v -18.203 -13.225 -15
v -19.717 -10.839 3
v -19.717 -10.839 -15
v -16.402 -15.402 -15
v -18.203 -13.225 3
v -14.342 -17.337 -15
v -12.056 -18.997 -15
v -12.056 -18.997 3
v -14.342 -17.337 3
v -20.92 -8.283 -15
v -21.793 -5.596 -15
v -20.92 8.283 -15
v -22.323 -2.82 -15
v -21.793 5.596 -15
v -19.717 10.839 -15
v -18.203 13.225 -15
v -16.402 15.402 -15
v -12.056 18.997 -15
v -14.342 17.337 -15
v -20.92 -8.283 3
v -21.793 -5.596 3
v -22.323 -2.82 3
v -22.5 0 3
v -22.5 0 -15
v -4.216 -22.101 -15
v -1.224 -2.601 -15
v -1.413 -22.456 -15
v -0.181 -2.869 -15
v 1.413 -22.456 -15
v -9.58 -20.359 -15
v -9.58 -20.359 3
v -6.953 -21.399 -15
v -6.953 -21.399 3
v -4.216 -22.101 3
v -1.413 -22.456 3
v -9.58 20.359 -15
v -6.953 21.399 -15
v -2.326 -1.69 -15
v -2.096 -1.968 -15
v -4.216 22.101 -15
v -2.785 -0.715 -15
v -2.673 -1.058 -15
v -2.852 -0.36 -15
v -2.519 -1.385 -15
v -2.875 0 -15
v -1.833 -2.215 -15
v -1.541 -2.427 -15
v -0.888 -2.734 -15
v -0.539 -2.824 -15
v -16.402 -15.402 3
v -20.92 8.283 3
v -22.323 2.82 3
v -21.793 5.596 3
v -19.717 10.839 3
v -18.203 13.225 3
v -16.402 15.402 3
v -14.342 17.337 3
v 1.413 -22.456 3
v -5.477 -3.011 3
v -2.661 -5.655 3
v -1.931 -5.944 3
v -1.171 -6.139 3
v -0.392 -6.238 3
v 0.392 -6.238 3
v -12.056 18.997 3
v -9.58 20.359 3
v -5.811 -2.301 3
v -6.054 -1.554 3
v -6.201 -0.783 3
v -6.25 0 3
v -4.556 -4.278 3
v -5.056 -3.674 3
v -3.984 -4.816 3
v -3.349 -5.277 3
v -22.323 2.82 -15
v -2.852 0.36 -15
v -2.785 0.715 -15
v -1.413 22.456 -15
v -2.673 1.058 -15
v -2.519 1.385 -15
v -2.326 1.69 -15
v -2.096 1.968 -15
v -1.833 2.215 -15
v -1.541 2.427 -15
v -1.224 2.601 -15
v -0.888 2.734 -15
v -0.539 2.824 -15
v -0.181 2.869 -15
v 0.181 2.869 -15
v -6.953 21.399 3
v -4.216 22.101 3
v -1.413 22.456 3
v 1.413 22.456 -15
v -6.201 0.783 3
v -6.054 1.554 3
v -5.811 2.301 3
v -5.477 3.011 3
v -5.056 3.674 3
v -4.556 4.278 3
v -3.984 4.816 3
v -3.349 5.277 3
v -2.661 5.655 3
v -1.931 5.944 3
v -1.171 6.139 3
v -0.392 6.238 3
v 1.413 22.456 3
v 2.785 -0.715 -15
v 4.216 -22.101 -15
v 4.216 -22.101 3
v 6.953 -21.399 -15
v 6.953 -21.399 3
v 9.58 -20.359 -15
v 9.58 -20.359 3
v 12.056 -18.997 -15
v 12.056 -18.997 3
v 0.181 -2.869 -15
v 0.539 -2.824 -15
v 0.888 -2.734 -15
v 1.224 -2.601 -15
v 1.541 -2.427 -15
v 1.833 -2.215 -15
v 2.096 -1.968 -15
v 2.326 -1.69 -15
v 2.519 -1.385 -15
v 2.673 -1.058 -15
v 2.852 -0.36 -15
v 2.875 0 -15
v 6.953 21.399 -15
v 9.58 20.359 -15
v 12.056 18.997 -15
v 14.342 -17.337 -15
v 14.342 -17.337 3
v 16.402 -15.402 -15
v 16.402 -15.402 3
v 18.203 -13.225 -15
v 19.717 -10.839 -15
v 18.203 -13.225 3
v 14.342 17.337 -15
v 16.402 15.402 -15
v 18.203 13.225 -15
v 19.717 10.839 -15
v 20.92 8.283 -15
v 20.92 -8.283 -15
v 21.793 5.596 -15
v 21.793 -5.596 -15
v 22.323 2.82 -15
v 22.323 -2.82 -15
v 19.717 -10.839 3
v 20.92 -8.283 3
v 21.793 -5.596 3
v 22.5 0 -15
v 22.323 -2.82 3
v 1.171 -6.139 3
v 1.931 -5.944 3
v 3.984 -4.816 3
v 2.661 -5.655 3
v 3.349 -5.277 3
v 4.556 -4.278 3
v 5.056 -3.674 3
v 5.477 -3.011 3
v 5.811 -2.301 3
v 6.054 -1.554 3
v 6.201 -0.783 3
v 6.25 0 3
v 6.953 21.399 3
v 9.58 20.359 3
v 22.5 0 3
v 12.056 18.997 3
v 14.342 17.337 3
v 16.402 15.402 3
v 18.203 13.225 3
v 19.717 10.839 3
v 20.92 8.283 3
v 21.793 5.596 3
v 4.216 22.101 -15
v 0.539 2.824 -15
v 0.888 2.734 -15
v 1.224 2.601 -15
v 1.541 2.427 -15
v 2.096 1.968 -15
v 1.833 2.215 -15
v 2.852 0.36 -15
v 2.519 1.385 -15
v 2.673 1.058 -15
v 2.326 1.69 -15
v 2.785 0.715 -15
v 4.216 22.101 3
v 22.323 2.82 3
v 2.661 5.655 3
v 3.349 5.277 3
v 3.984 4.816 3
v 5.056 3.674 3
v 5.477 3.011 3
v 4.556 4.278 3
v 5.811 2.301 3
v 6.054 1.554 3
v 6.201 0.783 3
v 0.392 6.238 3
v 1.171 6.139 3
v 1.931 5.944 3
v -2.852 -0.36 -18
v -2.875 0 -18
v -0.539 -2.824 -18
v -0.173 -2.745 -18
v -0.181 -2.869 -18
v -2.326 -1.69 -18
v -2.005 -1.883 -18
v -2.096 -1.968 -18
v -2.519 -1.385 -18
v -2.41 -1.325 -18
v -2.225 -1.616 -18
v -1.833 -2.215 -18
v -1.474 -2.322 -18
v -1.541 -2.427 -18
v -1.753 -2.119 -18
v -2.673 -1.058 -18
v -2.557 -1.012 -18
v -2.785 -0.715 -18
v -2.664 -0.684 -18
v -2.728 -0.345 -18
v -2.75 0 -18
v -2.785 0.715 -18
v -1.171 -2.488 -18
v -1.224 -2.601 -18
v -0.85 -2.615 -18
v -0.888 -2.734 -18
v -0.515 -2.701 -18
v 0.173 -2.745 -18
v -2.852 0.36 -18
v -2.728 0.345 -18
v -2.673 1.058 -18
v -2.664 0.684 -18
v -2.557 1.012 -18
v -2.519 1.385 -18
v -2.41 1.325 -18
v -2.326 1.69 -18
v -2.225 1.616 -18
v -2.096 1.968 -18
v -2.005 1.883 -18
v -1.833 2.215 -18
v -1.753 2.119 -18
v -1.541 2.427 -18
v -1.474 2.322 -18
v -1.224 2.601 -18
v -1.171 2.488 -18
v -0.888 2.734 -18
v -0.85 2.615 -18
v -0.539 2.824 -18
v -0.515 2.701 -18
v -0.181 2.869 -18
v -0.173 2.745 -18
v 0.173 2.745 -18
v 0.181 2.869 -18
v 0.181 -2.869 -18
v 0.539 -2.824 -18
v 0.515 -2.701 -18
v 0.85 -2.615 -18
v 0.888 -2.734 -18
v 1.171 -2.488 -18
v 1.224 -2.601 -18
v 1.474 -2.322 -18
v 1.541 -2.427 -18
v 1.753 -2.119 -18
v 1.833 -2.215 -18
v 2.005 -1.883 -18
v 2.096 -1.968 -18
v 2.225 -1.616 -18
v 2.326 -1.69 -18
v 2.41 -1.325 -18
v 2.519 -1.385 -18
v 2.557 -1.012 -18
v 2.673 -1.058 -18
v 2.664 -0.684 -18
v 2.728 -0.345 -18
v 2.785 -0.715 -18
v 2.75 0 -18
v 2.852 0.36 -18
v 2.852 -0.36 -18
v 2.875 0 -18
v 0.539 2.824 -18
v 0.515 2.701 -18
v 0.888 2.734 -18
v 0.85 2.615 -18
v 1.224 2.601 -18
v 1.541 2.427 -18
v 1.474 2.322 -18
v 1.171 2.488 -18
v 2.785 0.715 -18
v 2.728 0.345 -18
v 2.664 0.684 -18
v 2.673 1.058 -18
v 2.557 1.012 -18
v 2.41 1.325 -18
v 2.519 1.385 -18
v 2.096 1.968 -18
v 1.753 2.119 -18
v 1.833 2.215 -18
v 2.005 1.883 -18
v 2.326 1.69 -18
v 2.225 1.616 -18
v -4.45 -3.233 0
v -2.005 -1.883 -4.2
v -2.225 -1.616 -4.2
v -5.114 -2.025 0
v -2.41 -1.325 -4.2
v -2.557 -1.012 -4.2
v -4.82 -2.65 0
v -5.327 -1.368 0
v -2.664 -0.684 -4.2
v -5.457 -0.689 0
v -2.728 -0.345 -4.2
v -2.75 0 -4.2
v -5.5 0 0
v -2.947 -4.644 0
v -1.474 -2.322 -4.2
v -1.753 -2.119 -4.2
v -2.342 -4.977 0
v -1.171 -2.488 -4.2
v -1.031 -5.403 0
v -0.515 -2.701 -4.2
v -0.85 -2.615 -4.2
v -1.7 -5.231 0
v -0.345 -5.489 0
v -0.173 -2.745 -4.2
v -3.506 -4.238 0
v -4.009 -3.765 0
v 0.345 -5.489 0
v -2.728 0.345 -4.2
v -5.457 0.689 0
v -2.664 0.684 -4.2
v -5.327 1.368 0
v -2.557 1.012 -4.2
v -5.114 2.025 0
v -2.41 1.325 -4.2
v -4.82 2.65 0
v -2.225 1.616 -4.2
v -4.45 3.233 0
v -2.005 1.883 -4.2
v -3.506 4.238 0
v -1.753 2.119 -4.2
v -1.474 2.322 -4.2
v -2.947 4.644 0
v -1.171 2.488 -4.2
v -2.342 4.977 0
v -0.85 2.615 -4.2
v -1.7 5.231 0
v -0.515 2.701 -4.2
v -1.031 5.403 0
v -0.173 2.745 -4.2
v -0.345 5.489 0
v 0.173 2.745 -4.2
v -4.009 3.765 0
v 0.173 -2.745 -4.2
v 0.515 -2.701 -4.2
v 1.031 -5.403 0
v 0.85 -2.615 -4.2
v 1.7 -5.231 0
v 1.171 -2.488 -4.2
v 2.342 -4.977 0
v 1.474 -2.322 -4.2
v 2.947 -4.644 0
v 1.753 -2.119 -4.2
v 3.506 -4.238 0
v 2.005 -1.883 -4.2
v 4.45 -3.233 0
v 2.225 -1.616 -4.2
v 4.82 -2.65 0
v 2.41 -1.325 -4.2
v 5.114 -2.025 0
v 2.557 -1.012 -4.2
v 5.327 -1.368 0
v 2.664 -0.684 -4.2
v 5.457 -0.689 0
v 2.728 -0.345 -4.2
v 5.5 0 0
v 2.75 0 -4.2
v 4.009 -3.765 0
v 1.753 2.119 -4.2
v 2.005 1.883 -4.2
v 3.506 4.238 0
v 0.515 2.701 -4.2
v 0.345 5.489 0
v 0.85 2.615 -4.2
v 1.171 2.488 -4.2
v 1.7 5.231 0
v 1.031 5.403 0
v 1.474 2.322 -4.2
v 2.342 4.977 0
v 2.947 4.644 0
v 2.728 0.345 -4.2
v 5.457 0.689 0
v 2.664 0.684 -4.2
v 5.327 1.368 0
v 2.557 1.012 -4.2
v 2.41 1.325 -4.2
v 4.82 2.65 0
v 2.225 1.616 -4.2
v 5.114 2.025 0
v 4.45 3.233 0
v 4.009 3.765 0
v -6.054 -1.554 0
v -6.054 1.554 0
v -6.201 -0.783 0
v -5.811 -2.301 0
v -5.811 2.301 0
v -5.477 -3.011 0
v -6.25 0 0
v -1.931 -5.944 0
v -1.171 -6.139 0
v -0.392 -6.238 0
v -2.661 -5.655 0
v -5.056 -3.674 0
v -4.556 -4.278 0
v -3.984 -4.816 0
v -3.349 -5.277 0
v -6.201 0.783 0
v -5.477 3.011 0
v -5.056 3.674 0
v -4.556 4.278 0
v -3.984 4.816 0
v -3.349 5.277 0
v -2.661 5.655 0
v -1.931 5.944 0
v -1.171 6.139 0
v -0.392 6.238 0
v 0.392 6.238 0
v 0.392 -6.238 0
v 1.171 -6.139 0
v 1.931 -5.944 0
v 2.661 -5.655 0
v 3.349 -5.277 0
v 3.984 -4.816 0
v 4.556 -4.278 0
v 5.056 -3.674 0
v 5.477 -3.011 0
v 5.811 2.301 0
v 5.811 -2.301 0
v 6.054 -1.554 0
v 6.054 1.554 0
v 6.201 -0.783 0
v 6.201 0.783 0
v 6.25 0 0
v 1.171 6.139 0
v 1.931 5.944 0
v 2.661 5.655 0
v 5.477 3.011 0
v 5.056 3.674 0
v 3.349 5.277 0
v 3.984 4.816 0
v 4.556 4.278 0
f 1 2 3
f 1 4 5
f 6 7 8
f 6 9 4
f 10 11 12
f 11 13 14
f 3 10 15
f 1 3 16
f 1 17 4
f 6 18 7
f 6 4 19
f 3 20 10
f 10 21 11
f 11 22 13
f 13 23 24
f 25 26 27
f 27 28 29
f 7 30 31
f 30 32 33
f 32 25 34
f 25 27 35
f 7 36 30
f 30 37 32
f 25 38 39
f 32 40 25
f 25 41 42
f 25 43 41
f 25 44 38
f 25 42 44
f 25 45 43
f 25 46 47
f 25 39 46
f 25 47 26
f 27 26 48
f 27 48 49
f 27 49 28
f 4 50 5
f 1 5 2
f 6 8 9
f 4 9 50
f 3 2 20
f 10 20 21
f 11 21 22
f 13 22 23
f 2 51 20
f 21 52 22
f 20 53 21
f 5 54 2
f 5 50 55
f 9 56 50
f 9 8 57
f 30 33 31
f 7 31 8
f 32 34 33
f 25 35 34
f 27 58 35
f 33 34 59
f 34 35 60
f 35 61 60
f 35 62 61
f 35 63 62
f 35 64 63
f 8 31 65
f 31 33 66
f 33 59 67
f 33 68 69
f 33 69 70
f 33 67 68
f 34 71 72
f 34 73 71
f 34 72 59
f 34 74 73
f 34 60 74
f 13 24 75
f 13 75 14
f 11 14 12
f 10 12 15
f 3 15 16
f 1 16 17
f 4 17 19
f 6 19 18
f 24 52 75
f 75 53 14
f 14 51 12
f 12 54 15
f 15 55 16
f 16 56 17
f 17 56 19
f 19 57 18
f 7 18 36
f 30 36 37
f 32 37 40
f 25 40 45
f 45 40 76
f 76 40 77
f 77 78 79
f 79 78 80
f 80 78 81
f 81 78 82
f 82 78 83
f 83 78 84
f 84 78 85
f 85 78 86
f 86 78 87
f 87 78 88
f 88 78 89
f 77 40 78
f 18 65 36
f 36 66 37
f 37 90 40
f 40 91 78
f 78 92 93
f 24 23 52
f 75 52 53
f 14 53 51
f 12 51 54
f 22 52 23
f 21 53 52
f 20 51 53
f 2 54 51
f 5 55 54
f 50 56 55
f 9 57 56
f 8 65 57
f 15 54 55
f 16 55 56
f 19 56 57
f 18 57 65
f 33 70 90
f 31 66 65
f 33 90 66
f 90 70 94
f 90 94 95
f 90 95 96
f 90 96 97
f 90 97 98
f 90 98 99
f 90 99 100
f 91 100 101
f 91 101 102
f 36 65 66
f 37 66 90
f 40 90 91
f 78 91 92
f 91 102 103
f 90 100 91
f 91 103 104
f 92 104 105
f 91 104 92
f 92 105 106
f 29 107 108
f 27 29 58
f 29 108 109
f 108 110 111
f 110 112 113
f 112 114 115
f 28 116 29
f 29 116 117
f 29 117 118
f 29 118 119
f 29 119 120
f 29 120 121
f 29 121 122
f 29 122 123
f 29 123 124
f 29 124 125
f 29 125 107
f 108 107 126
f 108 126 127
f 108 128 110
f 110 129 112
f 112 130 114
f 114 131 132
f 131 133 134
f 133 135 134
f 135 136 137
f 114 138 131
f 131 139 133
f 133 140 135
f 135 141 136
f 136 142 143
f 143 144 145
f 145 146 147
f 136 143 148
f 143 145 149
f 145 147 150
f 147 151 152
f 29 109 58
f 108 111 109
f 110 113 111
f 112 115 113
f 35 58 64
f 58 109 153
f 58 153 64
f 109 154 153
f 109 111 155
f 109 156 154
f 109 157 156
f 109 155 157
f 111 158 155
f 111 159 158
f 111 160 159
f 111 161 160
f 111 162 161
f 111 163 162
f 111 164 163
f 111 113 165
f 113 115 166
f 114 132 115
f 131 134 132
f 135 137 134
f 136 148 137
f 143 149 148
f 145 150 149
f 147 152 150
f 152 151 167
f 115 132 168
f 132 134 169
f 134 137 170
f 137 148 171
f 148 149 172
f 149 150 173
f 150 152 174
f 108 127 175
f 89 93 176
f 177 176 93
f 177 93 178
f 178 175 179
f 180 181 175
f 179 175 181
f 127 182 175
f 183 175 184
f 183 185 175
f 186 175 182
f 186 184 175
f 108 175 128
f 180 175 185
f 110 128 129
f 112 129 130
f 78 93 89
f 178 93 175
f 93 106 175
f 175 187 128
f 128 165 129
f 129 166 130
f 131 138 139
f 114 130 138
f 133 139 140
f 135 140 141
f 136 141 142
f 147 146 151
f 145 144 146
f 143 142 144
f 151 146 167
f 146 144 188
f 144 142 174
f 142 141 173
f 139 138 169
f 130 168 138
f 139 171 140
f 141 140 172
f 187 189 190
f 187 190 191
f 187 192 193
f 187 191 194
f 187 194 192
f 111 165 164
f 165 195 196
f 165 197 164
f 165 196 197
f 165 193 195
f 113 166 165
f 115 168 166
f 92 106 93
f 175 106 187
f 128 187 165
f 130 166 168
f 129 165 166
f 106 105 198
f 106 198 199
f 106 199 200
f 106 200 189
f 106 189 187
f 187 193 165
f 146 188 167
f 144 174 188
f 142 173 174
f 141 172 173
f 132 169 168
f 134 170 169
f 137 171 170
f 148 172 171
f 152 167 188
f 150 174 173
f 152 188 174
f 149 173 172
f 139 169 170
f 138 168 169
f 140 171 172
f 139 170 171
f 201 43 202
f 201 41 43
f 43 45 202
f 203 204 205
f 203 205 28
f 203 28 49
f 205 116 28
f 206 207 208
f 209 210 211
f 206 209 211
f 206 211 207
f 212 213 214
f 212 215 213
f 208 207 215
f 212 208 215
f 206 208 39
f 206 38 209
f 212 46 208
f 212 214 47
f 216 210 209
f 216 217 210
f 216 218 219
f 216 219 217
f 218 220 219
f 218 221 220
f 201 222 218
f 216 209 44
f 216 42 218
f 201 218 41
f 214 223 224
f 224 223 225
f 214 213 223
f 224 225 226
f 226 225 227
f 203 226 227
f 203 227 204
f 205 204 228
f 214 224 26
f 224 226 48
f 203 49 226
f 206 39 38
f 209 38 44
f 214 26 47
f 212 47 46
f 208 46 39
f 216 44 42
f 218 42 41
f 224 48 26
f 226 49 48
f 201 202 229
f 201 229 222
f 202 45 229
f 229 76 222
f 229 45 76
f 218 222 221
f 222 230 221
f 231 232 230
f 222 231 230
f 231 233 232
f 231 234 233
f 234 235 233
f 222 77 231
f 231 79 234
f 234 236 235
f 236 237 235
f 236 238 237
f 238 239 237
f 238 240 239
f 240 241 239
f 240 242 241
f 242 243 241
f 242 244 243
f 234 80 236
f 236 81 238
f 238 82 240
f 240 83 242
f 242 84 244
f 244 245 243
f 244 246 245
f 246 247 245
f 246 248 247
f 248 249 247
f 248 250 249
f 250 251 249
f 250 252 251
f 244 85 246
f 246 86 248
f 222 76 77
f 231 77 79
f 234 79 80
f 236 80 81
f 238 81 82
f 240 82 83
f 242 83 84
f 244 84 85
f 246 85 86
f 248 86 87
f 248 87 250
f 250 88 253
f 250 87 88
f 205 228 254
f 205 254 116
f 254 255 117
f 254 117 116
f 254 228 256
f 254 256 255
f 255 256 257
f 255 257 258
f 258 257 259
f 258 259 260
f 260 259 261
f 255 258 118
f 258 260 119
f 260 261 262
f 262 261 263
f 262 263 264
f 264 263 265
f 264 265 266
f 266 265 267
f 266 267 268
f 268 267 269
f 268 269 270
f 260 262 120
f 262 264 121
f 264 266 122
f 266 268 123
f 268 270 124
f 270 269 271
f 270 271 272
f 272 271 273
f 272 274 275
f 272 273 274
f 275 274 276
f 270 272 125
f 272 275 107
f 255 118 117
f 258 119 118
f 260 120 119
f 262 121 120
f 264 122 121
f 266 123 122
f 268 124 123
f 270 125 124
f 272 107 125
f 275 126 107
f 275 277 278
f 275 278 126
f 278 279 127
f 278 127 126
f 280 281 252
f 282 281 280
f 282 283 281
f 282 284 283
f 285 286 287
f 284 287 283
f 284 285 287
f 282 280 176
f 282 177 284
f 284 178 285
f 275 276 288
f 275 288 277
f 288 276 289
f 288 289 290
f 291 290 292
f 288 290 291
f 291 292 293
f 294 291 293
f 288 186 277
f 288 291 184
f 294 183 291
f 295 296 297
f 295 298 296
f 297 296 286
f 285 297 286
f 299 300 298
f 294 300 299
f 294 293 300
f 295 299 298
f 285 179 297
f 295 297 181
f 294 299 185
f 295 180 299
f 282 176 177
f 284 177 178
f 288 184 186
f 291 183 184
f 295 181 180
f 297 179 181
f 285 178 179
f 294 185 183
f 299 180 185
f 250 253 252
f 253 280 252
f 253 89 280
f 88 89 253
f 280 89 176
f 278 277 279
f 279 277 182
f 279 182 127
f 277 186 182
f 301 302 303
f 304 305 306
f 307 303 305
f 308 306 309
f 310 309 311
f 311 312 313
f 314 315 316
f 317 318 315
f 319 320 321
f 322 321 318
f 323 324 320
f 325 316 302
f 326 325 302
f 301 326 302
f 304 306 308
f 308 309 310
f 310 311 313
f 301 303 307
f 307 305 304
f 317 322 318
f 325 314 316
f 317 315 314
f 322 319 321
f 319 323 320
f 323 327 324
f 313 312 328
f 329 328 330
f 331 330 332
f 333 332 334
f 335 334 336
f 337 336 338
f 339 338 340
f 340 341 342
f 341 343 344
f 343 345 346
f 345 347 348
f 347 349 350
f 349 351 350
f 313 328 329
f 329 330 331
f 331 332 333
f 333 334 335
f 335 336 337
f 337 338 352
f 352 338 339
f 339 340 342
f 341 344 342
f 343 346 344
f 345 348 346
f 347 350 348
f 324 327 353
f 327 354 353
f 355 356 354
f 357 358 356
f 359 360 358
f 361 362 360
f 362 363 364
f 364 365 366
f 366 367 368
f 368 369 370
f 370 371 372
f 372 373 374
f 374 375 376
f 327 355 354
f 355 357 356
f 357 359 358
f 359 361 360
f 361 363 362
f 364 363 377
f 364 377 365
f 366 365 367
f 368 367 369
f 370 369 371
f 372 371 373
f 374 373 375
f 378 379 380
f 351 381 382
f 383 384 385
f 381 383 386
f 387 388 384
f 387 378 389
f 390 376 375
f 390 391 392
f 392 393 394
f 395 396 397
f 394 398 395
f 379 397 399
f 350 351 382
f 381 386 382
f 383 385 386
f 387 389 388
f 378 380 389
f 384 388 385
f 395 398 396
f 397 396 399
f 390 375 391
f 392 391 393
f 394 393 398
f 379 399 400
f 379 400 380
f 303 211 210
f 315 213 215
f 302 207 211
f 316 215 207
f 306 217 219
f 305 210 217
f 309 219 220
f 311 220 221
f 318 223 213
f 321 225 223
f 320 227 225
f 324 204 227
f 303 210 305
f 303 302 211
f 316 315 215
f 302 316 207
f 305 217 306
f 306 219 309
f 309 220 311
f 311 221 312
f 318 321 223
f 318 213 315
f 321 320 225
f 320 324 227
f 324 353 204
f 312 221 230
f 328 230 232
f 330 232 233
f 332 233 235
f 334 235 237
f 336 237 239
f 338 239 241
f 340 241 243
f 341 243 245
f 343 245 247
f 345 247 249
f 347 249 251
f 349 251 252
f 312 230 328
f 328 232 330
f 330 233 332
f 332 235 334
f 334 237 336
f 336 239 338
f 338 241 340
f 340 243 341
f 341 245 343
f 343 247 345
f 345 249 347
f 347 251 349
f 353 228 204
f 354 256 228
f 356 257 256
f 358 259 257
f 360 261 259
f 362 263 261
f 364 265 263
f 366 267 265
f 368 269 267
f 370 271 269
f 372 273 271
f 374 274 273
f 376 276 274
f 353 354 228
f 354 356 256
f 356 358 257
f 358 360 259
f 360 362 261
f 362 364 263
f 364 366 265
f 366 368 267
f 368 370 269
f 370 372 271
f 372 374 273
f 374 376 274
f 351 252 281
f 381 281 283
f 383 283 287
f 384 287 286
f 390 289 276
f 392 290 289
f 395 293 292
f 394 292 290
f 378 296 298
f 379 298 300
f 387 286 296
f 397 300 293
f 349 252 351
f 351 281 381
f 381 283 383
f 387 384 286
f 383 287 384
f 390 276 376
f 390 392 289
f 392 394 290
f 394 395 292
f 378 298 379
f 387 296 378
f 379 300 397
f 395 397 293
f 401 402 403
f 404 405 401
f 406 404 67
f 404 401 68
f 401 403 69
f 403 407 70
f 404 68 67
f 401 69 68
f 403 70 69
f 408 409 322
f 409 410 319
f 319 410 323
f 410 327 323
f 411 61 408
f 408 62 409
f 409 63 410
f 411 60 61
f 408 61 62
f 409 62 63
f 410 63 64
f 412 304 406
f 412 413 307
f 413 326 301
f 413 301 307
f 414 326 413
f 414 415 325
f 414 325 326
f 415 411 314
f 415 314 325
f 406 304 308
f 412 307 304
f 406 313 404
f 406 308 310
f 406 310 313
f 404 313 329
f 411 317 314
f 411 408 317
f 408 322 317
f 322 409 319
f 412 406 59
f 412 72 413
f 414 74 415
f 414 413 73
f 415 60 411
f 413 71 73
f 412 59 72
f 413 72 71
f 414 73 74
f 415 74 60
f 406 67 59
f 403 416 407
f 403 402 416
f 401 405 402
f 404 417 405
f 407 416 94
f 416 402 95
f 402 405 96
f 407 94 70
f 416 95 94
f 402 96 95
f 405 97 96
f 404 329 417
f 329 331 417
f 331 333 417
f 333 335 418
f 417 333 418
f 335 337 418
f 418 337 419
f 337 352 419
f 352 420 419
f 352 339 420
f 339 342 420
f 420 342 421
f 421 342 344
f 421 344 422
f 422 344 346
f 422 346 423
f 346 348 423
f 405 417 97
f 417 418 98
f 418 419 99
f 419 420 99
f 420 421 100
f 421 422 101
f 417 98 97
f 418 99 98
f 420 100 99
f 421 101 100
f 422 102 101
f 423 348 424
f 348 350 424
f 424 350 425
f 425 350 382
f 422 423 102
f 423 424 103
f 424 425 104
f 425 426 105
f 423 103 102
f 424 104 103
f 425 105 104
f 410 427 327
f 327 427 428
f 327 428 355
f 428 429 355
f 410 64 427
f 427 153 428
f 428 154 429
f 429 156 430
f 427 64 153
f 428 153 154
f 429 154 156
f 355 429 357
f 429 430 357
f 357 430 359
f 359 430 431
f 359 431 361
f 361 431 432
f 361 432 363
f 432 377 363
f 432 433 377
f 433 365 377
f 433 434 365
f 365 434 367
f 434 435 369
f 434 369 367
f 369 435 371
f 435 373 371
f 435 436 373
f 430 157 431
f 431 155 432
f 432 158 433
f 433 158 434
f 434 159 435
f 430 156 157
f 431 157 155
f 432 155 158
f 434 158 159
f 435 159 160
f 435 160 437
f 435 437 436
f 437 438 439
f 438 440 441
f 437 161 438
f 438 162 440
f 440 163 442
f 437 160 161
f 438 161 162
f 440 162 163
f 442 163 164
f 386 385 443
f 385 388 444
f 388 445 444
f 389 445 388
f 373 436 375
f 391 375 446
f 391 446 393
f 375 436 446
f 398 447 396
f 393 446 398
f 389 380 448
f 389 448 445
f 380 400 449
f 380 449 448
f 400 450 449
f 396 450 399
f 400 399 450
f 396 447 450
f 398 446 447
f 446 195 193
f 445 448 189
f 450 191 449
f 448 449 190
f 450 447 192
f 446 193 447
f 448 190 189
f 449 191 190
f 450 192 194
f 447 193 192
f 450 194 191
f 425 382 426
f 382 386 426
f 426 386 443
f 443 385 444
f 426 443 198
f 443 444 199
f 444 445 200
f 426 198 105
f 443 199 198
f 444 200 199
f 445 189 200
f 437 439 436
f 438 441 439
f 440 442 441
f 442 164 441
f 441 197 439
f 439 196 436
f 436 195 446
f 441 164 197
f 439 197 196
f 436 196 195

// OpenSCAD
$fn = 50;


difference() {
	union() {
		translate(v = [0, 0, -15.0000000000]) {
			cylinder(h = 18, r = 22.5000000000);
		}
		#translate(v = [0, 0, -18.0000000000]) {
			cylinder(h = 18, r = 2.8750000000);
		}
	}
	union() {
		translate(v = [0, 0, 0]) {
			rotate(a = [0, 0, 0]) {
				difference() {
					union() {
						translate(v = [0, 0, -18.0000000000]) {
							cylinder(h = 18, r = 2.2500000000);
						}
						translate(v = [0, 0, -4.2000000000]) {
							cylinder(h = 4.2000000000, r1 = 2.7500000000, r2 = 5.5000000000);
						}
						translate(v = [0, 0, -18.0000000000]) {
							cylinder(h = 18, r = 2.7500000000);
						}
						translate(v = [0, 0, -18.0000000000]) {
							cylinder(h = 18, r = 2.2500000000);
						}
					}
					union();
				}
			}
		}
		#cylinder(h = 3, r = 6.2500000000);
	}
}
